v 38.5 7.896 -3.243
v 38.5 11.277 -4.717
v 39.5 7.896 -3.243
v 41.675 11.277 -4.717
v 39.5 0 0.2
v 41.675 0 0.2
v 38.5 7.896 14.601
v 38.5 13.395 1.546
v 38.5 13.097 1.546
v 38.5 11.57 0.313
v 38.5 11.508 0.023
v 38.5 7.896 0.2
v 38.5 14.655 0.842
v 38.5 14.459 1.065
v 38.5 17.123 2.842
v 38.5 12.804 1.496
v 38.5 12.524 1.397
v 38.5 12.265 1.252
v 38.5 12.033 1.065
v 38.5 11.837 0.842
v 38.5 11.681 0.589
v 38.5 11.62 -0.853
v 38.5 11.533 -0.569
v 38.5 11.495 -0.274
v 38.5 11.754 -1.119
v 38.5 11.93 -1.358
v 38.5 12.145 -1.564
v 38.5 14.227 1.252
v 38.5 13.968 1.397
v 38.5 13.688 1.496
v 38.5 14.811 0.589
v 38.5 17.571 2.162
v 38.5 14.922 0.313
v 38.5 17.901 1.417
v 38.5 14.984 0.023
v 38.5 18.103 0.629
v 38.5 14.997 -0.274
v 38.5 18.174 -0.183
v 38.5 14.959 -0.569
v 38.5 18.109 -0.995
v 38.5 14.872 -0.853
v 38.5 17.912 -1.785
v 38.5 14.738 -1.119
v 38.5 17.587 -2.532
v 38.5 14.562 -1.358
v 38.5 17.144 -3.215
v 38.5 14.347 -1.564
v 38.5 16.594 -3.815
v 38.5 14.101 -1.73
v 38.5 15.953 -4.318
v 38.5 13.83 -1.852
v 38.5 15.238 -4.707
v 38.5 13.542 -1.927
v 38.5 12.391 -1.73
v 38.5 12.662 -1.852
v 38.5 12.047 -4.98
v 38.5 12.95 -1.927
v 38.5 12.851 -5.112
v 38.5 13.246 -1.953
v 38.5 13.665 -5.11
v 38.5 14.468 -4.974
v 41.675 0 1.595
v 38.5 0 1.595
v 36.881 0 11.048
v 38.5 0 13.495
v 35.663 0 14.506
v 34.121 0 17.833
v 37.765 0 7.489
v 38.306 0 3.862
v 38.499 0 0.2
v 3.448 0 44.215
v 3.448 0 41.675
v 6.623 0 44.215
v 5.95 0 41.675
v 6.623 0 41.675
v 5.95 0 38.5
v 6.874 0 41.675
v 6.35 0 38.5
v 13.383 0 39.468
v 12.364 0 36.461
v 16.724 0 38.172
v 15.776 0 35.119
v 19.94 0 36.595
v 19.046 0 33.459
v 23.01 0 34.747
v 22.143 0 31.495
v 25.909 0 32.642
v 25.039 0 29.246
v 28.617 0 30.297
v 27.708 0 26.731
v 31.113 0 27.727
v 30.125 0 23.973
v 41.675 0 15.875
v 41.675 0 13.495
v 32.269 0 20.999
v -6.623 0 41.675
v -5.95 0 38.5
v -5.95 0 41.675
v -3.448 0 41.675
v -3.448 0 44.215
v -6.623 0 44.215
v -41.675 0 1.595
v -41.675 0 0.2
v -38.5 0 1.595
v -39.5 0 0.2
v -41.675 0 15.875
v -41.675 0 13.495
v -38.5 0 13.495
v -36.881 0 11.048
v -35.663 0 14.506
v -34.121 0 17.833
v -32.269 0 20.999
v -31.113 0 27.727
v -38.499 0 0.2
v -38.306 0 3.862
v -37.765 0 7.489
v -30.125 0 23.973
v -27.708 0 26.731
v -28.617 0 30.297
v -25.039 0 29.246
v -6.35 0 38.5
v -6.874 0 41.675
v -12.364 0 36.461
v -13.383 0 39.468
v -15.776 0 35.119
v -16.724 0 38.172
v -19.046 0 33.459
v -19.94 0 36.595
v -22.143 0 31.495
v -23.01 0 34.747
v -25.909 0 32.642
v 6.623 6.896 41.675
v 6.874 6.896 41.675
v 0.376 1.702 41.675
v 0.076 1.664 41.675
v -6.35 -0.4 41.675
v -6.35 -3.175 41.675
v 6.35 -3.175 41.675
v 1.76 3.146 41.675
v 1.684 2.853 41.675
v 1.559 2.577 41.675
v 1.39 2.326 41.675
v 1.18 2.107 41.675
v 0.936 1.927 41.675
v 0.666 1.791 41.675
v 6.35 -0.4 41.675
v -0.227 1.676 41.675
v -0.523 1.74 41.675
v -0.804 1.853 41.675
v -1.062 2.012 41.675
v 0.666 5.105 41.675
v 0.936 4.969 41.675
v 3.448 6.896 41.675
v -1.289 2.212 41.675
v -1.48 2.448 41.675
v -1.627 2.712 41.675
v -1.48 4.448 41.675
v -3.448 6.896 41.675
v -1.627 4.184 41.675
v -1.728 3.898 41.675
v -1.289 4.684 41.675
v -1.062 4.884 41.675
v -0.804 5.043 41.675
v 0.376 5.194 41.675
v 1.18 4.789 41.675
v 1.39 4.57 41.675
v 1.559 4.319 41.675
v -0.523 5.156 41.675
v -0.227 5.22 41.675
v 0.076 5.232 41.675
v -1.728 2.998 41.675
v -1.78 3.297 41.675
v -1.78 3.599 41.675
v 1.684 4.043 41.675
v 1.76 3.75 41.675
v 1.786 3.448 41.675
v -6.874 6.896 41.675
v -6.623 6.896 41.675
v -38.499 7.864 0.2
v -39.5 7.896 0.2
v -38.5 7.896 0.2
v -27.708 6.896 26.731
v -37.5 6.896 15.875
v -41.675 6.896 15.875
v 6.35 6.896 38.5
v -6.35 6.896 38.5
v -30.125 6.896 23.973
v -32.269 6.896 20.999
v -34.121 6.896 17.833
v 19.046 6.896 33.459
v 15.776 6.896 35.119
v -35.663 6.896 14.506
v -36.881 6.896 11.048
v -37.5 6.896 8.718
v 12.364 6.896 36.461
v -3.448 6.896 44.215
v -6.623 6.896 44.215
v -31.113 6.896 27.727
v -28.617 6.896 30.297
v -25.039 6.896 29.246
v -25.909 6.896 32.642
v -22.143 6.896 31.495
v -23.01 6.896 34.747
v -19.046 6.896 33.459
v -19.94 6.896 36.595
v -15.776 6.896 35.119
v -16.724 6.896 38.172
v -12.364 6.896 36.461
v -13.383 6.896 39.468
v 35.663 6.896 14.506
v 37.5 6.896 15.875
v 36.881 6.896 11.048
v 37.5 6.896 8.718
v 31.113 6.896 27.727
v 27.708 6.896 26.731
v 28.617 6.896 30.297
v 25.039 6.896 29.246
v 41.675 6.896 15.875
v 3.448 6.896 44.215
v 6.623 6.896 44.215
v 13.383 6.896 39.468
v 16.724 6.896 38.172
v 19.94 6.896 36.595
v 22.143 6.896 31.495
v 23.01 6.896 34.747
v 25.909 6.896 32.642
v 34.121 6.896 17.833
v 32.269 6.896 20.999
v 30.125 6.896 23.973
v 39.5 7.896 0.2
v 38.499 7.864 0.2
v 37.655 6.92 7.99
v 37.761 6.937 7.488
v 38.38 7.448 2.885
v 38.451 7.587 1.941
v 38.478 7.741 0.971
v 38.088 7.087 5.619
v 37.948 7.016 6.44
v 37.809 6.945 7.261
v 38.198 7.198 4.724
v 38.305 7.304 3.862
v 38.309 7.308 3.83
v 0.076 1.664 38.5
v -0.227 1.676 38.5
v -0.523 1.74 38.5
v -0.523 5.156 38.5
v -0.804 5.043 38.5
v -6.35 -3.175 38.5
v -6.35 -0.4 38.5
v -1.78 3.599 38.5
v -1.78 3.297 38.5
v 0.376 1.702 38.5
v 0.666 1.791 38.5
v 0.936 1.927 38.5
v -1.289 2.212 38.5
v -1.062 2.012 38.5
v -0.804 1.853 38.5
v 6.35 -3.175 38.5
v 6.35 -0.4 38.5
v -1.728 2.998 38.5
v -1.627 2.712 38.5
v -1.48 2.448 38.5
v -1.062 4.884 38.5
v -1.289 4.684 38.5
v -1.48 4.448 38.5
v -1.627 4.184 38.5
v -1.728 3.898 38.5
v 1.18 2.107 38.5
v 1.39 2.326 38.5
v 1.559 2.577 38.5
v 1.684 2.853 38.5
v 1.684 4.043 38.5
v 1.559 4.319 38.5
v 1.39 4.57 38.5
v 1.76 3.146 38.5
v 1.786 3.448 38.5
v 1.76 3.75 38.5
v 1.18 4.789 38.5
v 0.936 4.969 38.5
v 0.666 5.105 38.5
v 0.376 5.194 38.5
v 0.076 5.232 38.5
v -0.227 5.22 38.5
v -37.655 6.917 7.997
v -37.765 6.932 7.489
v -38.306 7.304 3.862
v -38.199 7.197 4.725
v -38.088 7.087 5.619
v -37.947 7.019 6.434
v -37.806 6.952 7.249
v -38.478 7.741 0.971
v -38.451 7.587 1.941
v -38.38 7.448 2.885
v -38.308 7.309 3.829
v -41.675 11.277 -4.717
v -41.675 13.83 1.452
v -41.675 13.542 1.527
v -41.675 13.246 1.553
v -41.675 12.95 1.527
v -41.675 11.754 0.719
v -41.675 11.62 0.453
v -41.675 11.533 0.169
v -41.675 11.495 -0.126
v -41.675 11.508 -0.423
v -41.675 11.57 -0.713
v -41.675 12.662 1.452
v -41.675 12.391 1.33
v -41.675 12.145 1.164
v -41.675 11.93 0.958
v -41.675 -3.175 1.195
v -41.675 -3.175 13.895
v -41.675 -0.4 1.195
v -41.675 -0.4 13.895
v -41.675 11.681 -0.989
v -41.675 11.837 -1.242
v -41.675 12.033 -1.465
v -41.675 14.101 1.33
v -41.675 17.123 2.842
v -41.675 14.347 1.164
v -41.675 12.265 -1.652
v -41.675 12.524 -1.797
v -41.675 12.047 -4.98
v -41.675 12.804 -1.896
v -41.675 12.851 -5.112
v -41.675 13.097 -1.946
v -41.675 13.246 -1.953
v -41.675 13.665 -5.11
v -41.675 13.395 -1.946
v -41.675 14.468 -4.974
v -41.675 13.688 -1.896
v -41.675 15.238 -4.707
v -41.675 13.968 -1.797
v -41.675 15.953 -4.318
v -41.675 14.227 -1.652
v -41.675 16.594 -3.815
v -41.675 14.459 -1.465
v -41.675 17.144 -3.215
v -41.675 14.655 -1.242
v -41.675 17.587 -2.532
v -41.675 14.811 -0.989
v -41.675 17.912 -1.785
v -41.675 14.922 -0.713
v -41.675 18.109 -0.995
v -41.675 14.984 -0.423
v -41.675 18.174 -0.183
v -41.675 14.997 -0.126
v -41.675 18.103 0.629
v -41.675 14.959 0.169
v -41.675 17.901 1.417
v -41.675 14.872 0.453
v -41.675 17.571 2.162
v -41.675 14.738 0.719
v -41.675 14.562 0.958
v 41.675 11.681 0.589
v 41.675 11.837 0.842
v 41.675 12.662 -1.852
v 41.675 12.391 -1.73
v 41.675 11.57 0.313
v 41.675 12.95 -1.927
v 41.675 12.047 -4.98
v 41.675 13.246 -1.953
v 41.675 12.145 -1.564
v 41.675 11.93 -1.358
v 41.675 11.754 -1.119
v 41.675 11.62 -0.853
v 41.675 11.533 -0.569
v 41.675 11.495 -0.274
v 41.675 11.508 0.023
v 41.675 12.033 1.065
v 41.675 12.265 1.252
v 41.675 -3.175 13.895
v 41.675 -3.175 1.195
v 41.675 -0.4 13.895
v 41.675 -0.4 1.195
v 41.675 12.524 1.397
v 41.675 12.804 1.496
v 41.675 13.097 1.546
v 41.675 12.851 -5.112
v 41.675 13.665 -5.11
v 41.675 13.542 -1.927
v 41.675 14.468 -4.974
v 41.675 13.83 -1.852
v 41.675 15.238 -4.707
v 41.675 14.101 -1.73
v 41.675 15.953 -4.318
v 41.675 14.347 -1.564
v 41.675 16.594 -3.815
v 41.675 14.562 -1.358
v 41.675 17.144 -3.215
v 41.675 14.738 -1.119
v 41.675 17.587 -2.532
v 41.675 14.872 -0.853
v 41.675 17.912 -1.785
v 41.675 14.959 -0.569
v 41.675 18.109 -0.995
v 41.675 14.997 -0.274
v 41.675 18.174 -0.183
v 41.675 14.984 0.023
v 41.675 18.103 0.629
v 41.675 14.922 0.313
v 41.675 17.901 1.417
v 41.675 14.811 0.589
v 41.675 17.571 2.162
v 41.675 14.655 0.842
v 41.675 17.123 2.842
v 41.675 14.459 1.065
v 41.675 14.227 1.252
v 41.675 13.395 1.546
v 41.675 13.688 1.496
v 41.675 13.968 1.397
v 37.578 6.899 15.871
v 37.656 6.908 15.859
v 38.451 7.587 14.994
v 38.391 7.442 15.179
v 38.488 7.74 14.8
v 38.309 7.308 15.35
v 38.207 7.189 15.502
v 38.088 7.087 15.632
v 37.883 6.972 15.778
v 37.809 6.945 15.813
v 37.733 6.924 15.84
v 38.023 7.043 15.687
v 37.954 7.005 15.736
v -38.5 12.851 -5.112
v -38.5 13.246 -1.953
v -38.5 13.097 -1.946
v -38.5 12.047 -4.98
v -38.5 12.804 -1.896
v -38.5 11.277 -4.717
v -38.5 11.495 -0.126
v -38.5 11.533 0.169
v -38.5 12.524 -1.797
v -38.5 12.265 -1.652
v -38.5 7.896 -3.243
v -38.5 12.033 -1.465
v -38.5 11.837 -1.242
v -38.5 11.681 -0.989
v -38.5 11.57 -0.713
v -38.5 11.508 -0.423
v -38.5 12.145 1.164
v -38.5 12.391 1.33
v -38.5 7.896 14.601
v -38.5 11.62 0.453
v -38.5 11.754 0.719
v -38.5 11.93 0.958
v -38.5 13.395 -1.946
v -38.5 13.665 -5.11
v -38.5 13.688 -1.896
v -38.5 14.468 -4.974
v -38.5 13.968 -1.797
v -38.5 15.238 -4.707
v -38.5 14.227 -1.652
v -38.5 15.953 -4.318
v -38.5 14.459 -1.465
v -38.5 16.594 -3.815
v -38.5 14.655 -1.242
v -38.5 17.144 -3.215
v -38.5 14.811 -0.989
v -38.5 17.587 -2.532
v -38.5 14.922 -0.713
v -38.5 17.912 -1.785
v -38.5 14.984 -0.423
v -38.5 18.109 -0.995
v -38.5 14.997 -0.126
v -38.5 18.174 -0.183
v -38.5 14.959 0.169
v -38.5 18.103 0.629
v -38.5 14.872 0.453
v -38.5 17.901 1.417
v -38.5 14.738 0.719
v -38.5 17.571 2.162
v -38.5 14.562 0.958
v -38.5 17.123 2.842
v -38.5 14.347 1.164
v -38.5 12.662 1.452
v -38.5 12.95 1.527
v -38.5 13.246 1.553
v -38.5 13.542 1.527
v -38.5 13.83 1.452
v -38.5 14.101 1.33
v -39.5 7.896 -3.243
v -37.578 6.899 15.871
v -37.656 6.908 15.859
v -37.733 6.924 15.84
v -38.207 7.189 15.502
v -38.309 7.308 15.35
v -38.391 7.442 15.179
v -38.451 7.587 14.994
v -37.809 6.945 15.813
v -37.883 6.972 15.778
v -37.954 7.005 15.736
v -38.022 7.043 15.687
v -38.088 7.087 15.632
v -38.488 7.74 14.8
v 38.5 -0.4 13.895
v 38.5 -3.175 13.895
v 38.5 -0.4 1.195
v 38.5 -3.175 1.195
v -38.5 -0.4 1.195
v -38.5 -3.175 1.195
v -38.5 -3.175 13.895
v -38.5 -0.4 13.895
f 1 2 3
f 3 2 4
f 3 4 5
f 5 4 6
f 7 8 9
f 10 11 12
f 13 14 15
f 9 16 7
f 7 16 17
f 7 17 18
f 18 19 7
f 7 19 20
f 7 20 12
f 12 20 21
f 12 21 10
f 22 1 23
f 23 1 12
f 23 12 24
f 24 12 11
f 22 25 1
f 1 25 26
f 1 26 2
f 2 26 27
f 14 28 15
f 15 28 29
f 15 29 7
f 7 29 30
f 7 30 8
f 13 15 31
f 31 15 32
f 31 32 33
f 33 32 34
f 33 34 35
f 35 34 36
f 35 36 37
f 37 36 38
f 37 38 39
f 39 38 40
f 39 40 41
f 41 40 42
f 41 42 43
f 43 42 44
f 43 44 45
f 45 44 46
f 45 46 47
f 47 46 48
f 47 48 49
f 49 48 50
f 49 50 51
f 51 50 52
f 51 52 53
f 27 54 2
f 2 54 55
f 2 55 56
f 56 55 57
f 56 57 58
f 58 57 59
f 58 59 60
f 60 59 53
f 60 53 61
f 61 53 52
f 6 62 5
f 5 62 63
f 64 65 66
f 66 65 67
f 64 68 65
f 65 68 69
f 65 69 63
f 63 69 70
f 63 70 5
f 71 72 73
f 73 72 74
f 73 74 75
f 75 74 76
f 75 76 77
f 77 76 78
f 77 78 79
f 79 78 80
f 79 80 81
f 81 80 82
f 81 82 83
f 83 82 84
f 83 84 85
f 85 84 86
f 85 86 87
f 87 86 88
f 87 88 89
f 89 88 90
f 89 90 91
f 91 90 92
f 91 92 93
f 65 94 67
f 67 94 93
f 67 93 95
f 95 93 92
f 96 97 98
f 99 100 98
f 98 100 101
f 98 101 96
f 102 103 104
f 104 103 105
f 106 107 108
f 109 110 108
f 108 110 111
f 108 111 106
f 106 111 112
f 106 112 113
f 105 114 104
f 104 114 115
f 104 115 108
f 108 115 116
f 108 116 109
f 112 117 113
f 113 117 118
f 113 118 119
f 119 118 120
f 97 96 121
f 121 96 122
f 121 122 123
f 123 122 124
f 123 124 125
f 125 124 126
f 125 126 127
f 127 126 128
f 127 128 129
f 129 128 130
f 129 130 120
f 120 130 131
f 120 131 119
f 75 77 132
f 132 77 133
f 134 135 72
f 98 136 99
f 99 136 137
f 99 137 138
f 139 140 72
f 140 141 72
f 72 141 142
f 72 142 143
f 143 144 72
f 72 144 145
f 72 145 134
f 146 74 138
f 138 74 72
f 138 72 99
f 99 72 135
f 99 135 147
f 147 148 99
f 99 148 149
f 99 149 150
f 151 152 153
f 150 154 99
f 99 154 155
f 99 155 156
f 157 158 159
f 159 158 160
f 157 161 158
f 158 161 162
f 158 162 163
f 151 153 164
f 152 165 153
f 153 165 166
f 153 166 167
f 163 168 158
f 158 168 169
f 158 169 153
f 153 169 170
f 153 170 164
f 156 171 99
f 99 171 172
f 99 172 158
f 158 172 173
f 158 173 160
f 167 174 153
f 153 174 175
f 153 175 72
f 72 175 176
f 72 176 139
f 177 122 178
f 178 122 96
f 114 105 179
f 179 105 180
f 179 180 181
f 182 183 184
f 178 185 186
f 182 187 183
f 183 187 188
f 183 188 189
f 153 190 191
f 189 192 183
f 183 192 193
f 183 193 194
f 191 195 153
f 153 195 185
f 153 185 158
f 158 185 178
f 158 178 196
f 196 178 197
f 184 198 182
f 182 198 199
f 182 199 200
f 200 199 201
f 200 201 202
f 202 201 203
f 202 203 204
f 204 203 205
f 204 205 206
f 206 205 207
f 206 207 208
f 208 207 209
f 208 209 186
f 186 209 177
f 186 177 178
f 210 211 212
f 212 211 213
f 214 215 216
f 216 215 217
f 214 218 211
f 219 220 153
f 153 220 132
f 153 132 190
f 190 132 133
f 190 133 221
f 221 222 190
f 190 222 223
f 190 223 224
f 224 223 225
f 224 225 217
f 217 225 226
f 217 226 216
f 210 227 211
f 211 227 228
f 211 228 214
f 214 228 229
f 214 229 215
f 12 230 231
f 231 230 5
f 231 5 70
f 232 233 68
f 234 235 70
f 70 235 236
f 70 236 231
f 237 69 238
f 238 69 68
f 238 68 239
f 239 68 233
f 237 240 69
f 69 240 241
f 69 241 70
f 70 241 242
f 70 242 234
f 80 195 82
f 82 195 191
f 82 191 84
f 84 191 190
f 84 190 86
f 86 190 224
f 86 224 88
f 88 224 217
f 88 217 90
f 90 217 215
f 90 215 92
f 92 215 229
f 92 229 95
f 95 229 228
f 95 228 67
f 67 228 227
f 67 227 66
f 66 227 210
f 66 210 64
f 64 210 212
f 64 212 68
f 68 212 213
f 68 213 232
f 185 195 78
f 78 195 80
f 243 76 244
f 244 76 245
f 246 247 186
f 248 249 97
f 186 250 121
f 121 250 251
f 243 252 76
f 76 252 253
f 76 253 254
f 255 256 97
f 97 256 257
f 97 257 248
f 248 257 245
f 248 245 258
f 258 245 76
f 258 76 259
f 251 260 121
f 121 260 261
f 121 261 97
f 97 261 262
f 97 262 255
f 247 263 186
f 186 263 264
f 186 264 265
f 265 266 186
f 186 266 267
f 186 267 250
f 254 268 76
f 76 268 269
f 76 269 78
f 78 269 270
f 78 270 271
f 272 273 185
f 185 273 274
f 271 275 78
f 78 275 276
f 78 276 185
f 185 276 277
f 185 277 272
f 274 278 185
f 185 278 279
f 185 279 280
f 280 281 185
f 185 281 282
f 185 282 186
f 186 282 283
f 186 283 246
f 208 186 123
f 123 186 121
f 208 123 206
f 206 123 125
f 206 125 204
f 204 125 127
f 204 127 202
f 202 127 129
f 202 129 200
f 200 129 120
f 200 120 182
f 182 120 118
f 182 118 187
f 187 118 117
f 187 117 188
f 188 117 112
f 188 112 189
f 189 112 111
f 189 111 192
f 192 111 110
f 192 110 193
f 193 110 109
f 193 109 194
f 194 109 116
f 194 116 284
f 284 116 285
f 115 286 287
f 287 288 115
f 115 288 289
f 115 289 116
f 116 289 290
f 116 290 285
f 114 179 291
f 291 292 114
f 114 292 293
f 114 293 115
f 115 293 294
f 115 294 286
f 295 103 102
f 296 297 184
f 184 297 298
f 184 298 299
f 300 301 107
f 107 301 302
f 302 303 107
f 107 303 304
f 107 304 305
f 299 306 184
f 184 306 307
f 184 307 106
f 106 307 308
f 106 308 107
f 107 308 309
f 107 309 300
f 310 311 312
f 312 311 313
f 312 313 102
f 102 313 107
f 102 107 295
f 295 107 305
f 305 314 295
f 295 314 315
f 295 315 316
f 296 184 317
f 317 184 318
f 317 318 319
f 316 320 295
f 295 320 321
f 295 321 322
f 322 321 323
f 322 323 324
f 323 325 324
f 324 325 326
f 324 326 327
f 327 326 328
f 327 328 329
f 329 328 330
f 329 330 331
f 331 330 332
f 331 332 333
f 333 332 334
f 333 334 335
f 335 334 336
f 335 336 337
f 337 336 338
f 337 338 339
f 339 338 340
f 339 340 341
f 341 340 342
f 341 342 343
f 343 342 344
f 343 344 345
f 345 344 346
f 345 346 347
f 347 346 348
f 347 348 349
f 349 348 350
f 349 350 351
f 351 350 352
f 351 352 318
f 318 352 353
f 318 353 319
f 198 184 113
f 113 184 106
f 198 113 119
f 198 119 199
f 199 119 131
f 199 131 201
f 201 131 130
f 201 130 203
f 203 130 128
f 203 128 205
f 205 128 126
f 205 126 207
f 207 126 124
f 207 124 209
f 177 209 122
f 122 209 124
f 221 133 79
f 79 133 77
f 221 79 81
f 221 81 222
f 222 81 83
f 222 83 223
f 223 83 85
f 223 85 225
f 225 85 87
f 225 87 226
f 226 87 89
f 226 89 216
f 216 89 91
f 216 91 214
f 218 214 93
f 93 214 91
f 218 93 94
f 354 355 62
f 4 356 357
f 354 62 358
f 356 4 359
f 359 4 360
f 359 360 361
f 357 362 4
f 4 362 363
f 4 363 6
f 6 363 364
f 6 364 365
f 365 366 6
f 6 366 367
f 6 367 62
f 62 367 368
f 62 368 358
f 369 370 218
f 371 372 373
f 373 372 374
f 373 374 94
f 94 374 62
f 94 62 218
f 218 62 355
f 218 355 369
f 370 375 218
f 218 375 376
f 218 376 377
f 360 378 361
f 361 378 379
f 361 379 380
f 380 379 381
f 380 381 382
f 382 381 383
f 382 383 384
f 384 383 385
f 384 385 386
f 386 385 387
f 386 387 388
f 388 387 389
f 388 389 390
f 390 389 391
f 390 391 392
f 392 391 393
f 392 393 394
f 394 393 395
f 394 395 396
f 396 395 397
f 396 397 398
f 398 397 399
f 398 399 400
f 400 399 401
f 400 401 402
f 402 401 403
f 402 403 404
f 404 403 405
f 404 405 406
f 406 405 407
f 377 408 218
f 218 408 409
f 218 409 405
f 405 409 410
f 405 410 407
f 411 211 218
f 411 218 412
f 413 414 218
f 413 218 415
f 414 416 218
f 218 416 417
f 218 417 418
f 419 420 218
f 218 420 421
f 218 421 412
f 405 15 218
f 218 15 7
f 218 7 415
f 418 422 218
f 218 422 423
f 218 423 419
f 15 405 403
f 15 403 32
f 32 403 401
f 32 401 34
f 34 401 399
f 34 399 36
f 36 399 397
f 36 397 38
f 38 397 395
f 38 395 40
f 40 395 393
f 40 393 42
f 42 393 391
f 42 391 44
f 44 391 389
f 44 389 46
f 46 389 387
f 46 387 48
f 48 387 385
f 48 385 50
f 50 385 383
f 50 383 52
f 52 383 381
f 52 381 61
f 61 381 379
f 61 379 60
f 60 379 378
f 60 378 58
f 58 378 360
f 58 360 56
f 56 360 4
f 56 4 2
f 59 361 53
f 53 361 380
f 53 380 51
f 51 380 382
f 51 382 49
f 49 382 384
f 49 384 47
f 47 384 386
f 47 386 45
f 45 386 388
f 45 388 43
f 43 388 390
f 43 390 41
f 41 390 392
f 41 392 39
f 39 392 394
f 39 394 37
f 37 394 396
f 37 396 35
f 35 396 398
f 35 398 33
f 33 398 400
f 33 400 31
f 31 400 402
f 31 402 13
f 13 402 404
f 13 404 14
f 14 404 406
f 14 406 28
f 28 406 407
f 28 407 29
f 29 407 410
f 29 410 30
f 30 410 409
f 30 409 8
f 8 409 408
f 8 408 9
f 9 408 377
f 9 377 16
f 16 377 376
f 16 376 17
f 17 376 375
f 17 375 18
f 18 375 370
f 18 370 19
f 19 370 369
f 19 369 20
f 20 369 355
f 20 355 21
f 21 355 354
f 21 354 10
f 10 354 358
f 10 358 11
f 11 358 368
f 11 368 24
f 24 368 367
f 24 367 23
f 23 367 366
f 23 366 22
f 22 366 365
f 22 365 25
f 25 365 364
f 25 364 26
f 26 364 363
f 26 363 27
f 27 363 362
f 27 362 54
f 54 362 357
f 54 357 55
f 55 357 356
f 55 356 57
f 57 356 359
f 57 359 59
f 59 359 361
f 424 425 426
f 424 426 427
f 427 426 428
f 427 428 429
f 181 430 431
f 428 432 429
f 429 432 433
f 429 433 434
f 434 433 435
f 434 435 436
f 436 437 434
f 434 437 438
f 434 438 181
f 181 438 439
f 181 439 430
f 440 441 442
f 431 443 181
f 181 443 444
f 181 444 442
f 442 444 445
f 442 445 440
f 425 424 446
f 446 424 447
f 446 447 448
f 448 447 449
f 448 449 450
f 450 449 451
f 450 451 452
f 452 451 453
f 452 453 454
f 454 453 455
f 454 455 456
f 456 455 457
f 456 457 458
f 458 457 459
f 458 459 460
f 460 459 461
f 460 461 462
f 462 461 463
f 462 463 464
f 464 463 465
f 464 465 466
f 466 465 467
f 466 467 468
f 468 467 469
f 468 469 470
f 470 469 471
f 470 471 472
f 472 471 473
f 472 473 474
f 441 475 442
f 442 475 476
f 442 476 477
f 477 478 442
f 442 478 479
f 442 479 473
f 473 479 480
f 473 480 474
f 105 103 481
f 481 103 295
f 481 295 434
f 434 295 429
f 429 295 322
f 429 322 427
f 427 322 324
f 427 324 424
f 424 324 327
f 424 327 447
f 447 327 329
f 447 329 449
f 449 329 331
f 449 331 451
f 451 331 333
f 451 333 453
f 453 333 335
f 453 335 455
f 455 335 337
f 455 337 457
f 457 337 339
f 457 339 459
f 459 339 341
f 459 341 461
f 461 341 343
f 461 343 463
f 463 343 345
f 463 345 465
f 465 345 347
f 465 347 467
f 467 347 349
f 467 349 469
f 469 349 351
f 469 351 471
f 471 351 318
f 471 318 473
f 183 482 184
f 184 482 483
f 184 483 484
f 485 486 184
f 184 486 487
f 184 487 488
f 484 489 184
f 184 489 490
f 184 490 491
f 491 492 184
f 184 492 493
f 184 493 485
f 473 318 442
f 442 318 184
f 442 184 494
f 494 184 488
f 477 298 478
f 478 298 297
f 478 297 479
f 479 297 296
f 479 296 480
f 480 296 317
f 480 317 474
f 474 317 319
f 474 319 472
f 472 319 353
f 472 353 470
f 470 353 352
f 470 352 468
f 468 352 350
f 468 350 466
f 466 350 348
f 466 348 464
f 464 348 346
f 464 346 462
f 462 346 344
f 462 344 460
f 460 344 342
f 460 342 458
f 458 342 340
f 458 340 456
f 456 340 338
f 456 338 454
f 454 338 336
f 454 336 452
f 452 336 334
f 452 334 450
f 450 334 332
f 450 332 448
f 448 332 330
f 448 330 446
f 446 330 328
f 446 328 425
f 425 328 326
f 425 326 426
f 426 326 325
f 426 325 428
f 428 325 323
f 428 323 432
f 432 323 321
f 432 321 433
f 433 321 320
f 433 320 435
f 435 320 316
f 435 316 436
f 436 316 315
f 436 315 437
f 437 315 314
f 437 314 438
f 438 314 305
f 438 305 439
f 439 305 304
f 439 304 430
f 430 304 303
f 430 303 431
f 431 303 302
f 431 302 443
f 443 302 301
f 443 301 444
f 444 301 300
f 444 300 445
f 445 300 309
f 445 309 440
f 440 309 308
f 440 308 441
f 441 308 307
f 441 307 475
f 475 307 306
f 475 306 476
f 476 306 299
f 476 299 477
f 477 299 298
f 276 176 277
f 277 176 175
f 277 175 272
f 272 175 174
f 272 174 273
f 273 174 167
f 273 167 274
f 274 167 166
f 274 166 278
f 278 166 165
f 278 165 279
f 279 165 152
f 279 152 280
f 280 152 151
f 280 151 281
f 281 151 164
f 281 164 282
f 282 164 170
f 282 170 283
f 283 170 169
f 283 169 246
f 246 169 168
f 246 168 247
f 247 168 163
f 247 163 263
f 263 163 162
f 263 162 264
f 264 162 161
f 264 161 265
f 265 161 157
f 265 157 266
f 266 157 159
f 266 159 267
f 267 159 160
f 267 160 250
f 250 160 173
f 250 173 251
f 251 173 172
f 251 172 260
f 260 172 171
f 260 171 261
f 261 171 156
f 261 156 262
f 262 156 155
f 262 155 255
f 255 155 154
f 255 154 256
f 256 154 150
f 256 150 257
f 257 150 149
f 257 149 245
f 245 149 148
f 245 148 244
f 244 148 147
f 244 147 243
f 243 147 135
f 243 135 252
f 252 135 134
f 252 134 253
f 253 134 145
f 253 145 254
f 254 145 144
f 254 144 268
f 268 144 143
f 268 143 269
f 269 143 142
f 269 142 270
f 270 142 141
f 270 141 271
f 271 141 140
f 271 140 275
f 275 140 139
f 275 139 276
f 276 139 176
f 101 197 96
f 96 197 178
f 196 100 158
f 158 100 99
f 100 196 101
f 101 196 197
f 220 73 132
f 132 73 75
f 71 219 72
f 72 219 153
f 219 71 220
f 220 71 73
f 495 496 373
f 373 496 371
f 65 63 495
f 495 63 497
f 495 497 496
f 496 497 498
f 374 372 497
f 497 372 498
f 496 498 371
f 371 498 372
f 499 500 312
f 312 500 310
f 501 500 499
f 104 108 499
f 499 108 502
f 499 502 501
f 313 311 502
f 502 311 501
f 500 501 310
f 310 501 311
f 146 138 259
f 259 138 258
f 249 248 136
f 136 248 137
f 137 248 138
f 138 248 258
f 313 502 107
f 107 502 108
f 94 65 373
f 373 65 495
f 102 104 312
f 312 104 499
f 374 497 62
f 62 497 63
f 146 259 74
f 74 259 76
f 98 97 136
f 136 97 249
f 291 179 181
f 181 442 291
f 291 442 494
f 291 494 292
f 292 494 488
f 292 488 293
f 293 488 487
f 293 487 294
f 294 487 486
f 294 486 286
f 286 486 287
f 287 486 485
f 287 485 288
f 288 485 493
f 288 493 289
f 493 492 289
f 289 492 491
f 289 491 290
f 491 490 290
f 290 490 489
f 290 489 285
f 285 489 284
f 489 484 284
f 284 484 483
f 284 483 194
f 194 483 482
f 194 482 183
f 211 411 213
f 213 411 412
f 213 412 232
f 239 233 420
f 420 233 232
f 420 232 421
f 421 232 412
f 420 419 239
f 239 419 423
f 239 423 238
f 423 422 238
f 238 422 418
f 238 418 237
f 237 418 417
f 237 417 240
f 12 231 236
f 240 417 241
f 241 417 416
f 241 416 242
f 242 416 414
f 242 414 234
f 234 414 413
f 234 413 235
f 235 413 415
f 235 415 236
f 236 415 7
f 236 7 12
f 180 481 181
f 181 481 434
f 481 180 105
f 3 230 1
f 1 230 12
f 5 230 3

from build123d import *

# Parameters (mm, degrees)
BOSS_EXTRUDE2_DEPTH             = 6.896
SKETCH2_R                       = 1.7526
BOSS_EXTRUDE3_DEPTH             = 3.175
F_9_64_0_14063_DIAMETER_HOLE2_D = 3.572002
SKETCH9_W                       = 3.175
SKETCH9_H                       = 6.896
BOSS_EXTRUDE5_DEPTH             = 2.54
SKETCH10_W                      = 3.175
SKETCH10_H                      = 12.7
SKETCH10_W_2                    = 12.7
SKETCH10_H_2                    = 3.175
BOSS_EXTRUDE6_DEPTH             = 3.175
CUT_EXTRUDE1_DEPTH              = 97.085734956
CUT_EXTRUDE2_DEPTH              = 66.25004773
FILLET2_R                       = 1
CUT_EXTRUDE3_DEPTH              = 1


with BuildPart() as part:
    # Sketch1 → Boss-Extrude2 (new body)
    with BuildSketch(Plane(origin=(0, 0, 0), x_dir=(1, 0, 0), z_dir=(0, 1, 0))):
        with BuildLine():
            Line((12.363664128, -36.460798254), (6.35, -38.5))
            Line((6.35, -38.5), (-6.35, -38.5))
            Line((-6.35, -38.5), (-12.363664128, -36.460798254))
            ThreePointArc((-12.363664128, -36.460798254), (-27.097558937, -27.349082245), (-36.345013413, -12.7))
            ThreePointArc((-36.345013413, -12.7), (-37.940572846, -6.539337285), (-38.499480516, -0.2))
            Line((-38.499480516, -0.2), (-41.675, -0.2))
            Line((-41.675, -0.2), (-41.675, -15.875))
            Line((-41.675, -15.875), (-31.113215051, -27.726764582))
            ThreePointArc((-31.113215051, -27.726764582), (-23.009697223, -34.747078419), (-13.383265001, -39.467630318))
            Line((-13.383265001, -39.467630318), (-6.873668831, -41.675))
            Line((-6.873668831, -41.675), (6.873668831, -41.675))
            Line((6.873668831, -41.675), (13.383265001, -39.467630318))
            ThreePointArc((13.383265001, -39.467630318), (23.009697223, -34.747078419), (31.113215051, -27.726764582))
            Line((31.113215051, -27.726764582), (41.675, -15.875))
            Line((41.675, -15.875), (41.675, -0.2))
            Line((41.675, -0.2), (38.499480516, -0.2))
            ThreePointArc((38.499480516, -0.2), (37.940572846, -6.539337285), (36.345013413, -12.7))
            ThreePointArc((36.345013413, -12.7), (27.097558937, -27.349082245), (12.363664128, -36.460798254))
        make_face()
    extrude(amount=BOSS_EXTRUDE2_DEPTH)

    # Sketch2 → Boss-Extrude3 (add)
    with BuildSketch(Plane(origin=(41.675, 0, 0), x_dir=(0, 0, -1), z_dir=(1, 0, 0))):
        with BuildLine():
            Line((-15.875, 6.896), (-2.841859979, 17.12263896))
            ThreePointArc((-2.841859979, 17.12263896), (3.214674972, 17.143816898), (4.716891749, 11.27649989))
            Line((4.716891749, 11.27649989), (-0.2, 0))
            Line((-0.2, 0), (-0.2, 6.896))
            Line((-0.2, 6.896), (-15.875, 6.896))
        make_face()
        with Locations((0.2, 13.246)):
            Circle(SKETCH2_R, mode=Mode.SUBTRACT)
    boss_extrude3 = extrude(amount=-BOSS_EXTRUDE3_DEPTH)

    # Mirror1: Boss-Extrude3 across plane
    add(boss_extrude3.mirror(Plane.ZY))

    # 9/64 (0.14063) Diameter Hole2 (through all)
    with Locations(Plane.XY.offset(41.675)):
        with Locations((0, 3.448)):
            Hole(F_9_64_0_14063_DIAMETER_HOLE2_D / 2)

    # Sketch9 → Boss-Extrude5 (add)
    with BuildSketch(Plane.XY.offset(41.675)):
        with Locations((-5.0355, 3.448)):
            Rectangle(SKETCH9_W, SKETCH9_H)
        with Locations((5.0355, 3.448)):
            Rectangle(SKETCH9_W, SKETCH9_H)
    extrude(amount=BOSS_EXTRUDE5_DEPTH)

    # Sketch10 → Boss-Extrude6 (add)
    with BuildSketch(Plane(origin=(0, 0, 0), x_dir=(-1, 0, 0), z_dir=(0, -1, 0))):
        with Locations((40.0875, -7.545458209)):
            Rectangle(SKETCH10_W, SKETCH10_H)
        with Locations((-40.0875, -7.545458209)):
            Rectangle(SKETCH10_W, SKETCH10_H)
        with Locations((0, -40.0875)):
            Rectangle(SKETCH10_W_2, SKETCH10_H_2)
    extrude(amount=BOSS_EXTRUDE6_DEPTH)

    # Sketch11 → Cut-Extrude1 (cut, through all)
    with BuildSketch(Plane.ZY.offset(41.675)):
        Polygon((13.895458209, -0.4), (13.495458209, 0), (13.895458209, 0), align=None)
        Polygon((1.595458209, 0), (1.195458209, 0), (1.195458209, -0.4), align=None)
    extrude(amount=-CUT_EXTRUDE1_DEPTH, mode=Mode.SUBTRACT)

    # Sketch12 → Cut-Extrude2 (cut, through all)
    with BuildSketch(Plane.XY.offset(41.675)):
        Polygon((6.35, -0.4), (6.35, 0), (5.95, 0), align=None)
        Polygon((-5.95, 0), (-6.35, -0.4), (-6.35, 0), align=None)
    extrude(amount=-CUT_EXTRUDE2_DEPTH, mode=Mode.SUBTRACT)

    # Fillet2
    # the kernel refuses this fillet: 1 mm, written as the material it adds along each edge
    with BuildSketch(Plane(origin=(-38.5, 6.896, 0.2), x_dir=(1, 0, 0), z_dir=(0, 0, 1))) as fillet2_piece_1_section:
        with BuildLine():
            CenterArc((FILLET2_R, FILLET2_R), FILLET2_R, 180, 90)
            Line((0, FILLET2_R), (0, 0))
            Line((0, 0), (FILLET2_R, 0))
        make_face()
    fillet2_piece_1 = extrude(amount=18.175, mode=Mode.PRIVATE)
    fillet2_piece_1 = fillet2_piece_1 - Plane(origin=(0, 7.133182821, 0), x_dir=(-0.321134133185776, 0, 0.9470337208901384), z_dir=(0, -1, 0)) * Cylinder(38.5, 41, mode=Mode.PRIVATE)
    fillet2_piece_1 = split(fillet2_piece_1, bisect_by=Plane(origin=(-38.301679368, 10.067346027, 11.833340077), z_dir=(0, -0.7867194903062766, -0.617310654024562)), keep=Keep.TOP, mode=Mode.PRIVATE)
    add(fillet2_piece_1)
    with BuildSketch(Plane(origin=(38.5, 6.896, 0.2), x_dir=(-1, 0, 0), z_dir=(0, 0, 1))) as fillet2_piece_2_section:
        with BuildLine():
            CenterArc((FILLET2_R, -FILLET2_R), FILLET2_R, 90, 90)
            Line((0, -FILLET2_R), (0, 0))
            Line((0, 0), (FILLET2_R, 0))
        make_face()
    fillet2_piece_2 = extrude(amount=18.175, mode=Mode.PRIVATE)
    fillet2_piece_2 = fillet2_piece_2 - Plane(origin=(0, 7.133182807, 0), x_dir=(0.9999865069084622, 0, 0.0051948051948059485), z_dir=(0, -1, 0)) * Cylinder(38.5, 41, mode=Mode.PRIVATE)
    fillet2_piece_2 = split(fillet2_piece_2, bisect_by=Plane(origin=(38.301679263, 10.067346636, 11.833339301), z_dir=(0, -0.7867194903062766, -0.617310654024562)), keep=Keep.TOP, mode=Mode.PRIVATE)
    add(fillet2_piece_2)

    # Sketch14 → Cut-Extrude3 (cut)
    with BuildSketch(Plane(origin=(-38.5, 0, 0), x_dir=(0, 0, -1), z_dir=(1, 0, 0))):
        Polygon((-0.2, 0), (-0.2, 7.896), (3.242892532, 7.896), align=None)
    cut_extrude3 = extrude(amount=-CUT_EXTRUDE3_DEPTH, mode=Mode.SUBTRACT)

    # Mirror2: Cut-Extrude3 across plane
    add(cut_extrude3.mirror(Plane.ZY), mode=Mode.SUBTRACT)


solid = part.part
